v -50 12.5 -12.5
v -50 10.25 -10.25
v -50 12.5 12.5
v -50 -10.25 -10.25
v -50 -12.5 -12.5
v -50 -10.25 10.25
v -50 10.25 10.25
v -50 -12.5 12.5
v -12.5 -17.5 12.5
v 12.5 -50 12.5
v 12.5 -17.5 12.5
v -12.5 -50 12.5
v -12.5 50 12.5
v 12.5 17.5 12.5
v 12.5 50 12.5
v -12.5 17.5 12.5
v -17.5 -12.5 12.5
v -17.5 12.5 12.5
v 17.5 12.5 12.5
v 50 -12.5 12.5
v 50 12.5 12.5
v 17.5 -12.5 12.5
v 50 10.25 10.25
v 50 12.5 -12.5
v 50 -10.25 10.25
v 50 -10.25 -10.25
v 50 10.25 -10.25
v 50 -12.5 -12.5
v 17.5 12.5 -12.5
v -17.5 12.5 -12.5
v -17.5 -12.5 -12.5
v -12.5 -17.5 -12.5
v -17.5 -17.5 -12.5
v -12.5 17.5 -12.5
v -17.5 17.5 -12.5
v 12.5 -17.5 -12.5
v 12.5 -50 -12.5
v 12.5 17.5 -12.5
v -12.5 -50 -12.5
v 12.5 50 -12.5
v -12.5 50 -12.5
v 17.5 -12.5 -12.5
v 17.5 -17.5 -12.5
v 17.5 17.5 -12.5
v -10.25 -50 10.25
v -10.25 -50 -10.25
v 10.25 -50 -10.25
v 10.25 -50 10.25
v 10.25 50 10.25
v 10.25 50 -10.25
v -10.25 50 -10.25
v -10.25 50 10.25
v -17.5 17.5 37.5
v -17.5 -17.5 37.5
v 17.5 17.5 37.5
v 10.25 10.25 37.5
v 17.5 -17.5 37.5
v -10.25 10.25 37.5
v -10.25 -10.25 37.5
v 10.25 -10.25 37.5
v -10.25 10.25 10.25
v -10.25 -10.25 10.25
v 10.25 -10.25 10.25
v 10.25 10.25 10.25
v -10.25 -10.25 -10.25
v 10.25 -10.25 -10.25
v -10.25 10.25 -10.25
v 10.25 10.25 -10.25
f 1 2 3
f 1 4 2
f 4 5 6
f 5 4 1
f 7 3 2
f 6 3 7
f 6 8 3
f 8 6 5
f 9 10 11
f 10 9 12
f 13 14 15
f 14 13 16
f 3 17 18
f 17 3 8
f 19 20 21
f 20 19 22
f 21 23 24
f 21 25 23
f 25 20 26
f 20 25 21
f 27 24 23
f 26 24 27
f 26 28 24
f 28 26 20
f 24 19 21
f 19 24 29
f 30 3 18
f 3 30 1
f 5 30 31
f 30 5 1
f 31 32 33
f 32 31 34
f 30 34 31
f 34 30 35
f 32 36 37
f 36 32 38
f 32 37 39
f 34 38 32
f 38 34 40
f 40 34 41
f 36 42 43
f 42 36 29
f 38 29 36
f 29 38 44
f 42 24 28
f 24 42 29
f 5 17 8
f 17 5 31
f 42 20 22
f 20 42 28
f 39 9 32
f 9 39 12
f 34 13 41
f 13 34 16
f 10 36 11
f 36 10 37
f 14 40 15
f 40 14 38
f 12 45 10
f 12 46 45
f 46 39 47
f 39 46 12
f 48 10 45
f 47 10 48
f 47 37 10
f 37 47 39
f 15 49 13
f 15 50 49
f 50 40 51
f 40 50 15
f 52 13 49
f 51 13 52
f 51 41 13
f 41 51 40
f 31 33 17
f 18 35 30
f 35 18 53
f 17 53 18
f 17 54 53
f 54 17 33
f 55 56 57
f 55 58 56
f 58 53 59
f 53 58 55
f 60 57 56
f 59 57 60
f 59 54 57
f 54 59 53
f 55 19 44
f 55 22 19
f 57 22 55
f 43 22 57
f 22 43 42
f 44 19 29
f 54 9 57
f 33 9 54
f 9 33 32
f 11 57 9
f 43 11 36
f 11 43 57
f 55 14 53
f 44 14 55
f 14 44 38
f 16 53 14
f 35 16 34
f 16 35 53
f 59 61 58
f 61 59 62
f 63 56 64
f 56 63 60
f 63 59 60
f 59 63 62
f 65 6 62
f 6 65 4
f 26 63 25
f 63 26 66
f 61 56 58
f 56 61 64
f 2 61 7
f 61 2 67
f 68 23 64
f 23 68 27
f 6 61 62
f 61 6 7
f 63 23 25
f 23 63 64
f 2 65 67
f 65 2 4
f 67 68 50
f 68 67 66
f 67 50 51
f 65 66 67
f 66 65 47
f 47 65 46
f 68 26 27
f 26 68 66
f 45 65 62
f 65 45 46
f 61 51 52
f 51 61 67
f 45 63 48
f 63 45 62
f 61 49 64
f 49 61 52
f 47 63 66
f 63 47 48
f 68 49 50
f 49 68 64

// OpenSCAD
tubeWidth = 20.5;

difference() {
    union() {
        cube([100, 25, 25], true);
        cube([25, 100, 25], true);

        translate([0, 0, 12.5])
        cube([35, 35, 50], true);
    }
    
    translate([0, 0, 40])
    cube([tubeWidth, tubeWidth, 100], true);
    
    cube([200, tubeWidth, tubeWidth], true);
    cube([tubeWidth, 200, tubeWidth], true);
}
